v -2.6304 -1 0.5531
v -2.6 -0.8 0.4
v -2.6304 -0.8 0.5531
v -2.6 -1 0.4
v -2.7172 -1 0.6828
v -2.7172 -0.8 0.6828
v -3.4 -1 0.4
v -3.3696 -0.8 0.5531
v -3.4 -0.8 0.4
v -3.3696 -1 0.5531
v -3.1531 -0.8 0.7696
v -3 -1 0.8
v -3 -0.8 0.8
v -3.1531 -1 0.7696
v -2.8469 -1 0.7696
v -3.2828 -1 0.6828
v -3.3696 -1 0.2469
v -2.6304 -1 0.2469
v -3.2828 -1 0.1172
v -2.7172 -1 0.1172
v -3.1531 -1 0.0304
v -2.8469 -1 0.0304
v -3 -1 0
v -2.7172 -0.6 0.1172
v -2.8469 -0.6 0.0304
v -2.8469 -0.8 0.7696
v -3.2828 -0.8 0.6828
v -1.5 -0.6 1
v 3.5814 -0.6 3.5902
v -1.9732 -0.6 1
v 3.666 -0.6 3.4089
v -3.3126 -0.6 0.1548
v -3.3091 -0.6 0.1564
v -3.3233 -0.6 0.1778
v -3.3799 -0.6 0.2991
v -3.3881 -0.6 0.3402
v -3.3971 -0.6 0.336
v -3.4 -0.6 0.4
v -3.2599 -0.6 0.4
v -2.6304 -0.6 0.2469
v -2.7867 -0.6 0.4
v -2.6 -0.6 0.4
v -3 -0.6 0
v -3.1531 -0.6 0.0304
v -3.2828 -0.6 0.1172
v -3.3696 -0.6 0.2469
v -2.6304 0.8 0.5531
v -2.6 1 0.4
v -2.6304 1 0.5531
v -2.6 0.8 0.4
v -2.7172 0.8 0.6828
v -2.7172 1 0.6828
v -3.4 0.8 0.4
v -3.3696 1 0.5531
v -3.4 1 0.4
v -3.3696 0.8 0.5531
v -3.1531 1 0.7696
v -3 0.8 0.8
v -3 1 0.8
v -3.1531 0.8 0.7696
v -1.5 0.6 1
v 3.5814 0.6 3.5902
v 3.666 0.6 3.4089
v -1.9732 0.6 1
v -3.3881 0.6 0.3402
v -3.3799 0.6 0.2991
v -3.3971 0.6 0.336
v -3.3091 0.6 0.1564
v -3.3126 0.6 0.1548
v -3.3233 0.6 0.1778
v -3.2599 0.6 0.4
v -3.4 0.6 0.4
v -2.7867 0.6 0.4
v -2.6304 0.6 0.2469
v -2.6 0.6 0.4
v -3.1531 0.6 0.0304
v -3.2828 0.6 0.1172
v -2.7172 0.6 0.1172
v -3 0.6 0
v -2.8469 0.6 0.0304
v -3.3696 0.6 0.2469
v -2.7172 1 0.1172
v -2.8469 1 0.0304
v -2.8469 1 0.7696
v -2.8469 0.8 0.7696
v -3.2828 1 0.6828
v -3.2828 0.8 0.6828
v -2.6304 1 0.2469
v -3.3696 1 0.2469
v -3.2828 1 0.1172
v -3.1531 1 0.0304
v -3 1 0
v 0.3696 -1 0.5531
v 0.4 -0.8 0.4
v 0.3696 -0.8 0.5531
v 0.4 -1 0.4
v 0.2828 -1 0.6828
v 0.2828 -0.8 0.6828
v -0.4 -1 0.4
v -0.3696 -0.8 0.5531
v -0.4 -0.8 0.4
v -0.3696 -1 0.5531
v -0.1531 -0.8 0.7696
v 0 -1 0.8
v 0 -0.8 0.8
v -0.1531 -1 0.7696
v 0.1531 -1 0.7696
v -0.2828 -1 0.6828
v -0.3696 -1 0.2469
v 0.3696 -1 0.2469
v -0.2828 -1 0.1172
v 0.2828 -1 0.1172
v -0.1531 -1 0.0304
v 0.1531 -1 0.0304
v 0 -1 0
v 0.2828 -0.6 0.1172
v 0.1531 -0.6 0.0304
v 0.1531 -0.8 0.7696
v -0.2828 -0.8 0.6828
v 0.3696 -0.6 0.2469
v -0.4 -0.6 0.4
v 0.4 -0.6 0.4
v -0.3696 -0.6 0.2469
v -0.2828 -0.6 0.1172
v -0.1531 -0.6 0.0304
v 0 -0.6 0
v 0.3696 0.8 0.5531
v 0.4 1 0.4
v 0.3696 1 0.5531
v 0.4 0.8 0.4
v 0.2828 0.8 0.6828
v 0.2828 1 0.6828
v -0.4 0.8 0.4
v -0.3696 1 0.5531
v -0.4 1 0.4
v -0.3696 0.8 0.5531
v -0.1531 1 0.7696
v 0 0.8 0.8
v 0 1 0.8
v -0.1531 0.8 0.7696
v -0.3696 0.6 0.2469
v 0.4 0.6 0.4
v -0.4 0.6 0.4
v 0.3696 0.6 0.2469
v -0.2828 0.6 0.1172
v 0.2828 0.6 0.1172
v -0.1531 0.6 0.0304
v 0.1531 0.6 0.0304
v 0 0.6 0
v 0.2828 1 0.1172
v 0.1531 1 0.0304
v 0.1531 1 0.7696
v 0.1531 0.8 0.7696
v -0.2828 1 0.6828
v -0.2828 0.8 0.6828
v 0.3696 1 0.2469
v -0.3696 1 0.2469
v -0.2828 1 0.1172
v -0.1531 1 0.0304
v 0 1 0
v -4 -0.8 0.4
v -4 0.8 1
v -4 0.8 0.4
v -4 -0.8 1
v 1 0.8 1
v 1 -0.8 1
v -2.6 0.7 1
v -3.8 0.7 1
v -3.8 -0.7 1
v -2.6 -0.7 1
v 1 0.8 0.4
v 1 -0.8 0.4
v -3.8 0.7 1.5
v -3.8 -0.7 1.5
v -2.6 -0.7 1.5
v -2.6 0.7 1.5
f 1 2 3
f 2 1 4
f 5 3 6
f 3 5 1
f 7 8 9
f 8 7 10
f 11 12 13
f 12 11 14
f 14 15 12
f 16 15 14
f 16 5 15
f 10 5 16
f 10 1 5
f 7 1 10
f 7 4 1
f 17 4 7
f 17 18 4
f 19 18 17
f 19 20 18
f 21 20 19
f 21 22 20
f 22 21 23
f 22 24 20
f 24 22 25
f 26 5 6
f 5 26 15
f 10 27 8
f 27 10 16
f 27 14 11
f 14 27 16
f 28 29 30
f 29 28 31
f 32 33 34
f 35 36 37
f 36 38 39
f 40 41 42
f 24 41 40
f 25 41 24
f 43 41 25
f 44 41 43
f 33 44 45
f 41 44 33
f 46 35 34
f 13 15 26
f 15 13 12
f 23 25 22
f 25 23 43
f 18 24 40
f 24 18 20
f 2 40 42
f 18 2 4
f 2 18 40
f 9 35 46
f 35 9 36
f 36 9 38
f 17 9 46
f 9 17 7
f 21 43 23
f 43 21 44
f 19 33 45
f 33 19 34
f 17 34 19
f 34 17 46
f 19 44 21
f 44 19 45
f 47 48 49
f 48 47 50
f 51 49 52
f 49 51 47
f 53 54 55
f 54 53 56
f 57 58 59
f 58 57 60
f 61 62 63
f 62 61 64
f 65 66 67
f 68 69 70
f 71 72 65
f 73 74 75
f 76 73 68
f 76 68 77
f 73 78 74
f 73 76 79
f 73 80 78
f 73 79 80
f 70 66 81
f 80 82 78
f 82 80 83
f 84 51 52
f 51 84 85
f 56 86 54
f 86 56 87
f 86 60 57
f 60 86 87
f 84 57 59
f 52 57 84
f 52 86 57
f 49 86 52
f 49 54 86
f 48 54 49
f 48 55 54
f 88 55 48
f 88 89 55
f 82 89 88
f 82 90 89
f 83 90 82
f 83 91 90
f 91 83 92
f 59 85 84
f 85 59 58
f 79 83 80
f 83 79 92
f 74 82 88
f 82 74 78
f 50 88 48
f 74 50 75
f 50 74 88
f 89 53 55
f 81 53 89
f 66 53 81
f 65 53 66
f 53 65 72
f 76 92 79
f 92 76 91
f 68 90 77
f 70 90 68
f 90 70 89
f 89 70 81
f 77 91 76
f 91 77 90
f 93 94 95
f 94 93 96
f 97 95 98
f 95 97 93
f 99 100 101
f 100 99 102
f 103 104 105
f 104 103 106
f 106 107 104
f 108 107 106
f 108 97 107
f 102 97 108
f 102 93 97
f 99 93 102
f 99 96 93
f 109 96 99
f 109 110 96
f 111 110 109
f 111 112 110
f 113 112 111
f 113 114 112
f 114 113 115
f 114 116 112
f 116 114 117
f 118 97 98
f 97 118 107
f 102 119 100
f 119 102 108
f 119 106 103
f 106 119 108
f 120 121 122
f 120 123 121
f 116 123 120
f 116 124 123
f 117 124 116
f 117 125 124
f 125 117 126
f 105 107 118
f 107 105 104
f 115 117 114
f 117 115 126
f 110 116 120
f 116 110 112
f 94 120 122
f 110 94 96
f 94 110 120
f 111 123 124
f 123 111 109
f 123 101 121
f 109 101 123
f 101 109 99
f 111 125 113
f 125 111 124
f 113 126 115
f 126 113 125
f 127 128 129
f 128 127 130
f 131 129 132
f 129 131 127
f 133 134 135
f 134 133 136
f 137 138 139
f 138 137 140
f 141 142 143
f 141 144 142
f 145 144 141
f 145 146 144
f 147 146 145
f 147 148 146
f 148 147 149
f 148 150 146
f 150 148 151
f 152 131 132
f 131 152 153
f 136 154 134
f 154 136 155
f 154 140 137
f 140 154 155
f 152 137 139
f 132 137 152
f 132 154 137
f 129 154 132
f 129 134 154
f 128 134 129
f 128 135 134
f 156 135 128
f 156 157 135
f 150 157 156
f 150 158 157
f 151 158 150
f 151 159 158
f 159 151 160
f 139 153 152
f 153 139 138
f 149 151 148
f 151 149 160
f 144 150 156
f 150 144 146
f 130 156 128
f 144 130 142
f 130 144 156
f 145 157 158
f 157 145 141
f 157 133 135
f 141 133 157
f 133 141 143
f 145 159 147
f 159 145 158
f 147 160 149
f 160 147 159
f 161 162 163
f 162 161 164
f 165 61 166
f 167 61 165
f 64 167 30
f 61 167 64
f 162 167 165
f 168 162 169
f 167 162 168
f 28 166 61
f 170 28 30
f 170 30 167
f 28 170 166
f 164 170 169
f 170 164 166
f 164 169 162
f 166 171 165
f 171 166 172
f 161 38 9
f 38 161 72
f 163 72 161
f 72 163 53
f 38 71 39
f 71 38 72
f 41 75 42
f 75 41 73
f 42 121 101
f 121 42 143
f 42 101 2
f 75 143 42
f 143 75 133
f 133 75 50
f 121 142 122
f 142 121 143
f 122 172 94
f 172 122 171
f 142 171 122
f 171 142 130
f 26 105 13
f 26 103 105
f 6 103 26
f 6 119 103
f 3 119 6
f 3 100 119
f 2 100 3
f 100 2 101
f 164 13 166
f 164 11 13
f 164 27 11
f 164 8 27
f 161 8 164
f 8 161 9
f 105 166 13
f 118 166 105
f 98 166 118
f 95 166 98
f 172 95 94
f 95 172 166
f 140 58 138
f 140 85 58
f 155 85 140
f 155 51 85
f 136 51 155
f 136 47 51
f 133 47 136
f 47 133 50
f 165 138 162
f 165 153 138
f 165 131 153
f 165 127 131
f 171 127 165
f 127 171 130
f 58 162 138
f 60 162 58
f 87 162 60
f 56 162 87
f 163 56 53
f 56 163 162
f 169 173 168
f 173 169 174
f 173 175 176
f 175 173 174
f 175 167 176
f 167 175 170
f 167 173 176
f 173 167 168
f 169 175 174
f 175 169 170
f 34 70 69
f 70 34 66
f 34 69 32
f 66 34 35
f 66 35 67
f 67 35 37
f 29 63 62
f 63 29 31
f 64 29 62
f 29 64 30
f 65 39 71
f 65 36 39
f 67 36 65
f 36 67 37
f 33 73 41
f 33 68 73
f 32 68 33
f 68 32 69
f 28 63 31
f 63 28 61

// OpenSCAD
// Airport Baggage Belt Loader

module baggage_belt_loader() {
    $fn = 16;

    wheel_r = 0.4;
    wheel_w = 0.4;
    wheel_x = [-3.0, 0.0];
    wheel_y = [-0.8, 0.8]; 

    chassis_l = 5.0;
    chassis_w = 1.6;
    chassis_h = 0.6;
    chassis_x = -1.5;
    chassis_z = 0.7;

    // Wheel
    for (x = wheel_x) {
        for (y = wheel_y) {
            translate([x, y, wheel_r])
            rotate([90, 0, 0])
            cylinder(h=wheel_w, r=wheel_r, center=true);
        }
    }

    // main body
    translate([chassis_x, 0, chassis_z])
    cube([chassis_l, chassis_w, chassis_h], center=true);

    // Driver Cab and Control Box
    translate([-3.2, 0, 1.25])
    cube([1.2, 1.4, 0.5], center=true);

    // Conveyor
    translate([-1.5, 0, 1.0])
    rotate([0, -25, 0])
    translate([1.85, 0, 0.1]) // Offsets the belt to reach forward and slightly backward
    cube([7.7, 1.2, 0.2], center=true);
}

baggage_belt_loader();
